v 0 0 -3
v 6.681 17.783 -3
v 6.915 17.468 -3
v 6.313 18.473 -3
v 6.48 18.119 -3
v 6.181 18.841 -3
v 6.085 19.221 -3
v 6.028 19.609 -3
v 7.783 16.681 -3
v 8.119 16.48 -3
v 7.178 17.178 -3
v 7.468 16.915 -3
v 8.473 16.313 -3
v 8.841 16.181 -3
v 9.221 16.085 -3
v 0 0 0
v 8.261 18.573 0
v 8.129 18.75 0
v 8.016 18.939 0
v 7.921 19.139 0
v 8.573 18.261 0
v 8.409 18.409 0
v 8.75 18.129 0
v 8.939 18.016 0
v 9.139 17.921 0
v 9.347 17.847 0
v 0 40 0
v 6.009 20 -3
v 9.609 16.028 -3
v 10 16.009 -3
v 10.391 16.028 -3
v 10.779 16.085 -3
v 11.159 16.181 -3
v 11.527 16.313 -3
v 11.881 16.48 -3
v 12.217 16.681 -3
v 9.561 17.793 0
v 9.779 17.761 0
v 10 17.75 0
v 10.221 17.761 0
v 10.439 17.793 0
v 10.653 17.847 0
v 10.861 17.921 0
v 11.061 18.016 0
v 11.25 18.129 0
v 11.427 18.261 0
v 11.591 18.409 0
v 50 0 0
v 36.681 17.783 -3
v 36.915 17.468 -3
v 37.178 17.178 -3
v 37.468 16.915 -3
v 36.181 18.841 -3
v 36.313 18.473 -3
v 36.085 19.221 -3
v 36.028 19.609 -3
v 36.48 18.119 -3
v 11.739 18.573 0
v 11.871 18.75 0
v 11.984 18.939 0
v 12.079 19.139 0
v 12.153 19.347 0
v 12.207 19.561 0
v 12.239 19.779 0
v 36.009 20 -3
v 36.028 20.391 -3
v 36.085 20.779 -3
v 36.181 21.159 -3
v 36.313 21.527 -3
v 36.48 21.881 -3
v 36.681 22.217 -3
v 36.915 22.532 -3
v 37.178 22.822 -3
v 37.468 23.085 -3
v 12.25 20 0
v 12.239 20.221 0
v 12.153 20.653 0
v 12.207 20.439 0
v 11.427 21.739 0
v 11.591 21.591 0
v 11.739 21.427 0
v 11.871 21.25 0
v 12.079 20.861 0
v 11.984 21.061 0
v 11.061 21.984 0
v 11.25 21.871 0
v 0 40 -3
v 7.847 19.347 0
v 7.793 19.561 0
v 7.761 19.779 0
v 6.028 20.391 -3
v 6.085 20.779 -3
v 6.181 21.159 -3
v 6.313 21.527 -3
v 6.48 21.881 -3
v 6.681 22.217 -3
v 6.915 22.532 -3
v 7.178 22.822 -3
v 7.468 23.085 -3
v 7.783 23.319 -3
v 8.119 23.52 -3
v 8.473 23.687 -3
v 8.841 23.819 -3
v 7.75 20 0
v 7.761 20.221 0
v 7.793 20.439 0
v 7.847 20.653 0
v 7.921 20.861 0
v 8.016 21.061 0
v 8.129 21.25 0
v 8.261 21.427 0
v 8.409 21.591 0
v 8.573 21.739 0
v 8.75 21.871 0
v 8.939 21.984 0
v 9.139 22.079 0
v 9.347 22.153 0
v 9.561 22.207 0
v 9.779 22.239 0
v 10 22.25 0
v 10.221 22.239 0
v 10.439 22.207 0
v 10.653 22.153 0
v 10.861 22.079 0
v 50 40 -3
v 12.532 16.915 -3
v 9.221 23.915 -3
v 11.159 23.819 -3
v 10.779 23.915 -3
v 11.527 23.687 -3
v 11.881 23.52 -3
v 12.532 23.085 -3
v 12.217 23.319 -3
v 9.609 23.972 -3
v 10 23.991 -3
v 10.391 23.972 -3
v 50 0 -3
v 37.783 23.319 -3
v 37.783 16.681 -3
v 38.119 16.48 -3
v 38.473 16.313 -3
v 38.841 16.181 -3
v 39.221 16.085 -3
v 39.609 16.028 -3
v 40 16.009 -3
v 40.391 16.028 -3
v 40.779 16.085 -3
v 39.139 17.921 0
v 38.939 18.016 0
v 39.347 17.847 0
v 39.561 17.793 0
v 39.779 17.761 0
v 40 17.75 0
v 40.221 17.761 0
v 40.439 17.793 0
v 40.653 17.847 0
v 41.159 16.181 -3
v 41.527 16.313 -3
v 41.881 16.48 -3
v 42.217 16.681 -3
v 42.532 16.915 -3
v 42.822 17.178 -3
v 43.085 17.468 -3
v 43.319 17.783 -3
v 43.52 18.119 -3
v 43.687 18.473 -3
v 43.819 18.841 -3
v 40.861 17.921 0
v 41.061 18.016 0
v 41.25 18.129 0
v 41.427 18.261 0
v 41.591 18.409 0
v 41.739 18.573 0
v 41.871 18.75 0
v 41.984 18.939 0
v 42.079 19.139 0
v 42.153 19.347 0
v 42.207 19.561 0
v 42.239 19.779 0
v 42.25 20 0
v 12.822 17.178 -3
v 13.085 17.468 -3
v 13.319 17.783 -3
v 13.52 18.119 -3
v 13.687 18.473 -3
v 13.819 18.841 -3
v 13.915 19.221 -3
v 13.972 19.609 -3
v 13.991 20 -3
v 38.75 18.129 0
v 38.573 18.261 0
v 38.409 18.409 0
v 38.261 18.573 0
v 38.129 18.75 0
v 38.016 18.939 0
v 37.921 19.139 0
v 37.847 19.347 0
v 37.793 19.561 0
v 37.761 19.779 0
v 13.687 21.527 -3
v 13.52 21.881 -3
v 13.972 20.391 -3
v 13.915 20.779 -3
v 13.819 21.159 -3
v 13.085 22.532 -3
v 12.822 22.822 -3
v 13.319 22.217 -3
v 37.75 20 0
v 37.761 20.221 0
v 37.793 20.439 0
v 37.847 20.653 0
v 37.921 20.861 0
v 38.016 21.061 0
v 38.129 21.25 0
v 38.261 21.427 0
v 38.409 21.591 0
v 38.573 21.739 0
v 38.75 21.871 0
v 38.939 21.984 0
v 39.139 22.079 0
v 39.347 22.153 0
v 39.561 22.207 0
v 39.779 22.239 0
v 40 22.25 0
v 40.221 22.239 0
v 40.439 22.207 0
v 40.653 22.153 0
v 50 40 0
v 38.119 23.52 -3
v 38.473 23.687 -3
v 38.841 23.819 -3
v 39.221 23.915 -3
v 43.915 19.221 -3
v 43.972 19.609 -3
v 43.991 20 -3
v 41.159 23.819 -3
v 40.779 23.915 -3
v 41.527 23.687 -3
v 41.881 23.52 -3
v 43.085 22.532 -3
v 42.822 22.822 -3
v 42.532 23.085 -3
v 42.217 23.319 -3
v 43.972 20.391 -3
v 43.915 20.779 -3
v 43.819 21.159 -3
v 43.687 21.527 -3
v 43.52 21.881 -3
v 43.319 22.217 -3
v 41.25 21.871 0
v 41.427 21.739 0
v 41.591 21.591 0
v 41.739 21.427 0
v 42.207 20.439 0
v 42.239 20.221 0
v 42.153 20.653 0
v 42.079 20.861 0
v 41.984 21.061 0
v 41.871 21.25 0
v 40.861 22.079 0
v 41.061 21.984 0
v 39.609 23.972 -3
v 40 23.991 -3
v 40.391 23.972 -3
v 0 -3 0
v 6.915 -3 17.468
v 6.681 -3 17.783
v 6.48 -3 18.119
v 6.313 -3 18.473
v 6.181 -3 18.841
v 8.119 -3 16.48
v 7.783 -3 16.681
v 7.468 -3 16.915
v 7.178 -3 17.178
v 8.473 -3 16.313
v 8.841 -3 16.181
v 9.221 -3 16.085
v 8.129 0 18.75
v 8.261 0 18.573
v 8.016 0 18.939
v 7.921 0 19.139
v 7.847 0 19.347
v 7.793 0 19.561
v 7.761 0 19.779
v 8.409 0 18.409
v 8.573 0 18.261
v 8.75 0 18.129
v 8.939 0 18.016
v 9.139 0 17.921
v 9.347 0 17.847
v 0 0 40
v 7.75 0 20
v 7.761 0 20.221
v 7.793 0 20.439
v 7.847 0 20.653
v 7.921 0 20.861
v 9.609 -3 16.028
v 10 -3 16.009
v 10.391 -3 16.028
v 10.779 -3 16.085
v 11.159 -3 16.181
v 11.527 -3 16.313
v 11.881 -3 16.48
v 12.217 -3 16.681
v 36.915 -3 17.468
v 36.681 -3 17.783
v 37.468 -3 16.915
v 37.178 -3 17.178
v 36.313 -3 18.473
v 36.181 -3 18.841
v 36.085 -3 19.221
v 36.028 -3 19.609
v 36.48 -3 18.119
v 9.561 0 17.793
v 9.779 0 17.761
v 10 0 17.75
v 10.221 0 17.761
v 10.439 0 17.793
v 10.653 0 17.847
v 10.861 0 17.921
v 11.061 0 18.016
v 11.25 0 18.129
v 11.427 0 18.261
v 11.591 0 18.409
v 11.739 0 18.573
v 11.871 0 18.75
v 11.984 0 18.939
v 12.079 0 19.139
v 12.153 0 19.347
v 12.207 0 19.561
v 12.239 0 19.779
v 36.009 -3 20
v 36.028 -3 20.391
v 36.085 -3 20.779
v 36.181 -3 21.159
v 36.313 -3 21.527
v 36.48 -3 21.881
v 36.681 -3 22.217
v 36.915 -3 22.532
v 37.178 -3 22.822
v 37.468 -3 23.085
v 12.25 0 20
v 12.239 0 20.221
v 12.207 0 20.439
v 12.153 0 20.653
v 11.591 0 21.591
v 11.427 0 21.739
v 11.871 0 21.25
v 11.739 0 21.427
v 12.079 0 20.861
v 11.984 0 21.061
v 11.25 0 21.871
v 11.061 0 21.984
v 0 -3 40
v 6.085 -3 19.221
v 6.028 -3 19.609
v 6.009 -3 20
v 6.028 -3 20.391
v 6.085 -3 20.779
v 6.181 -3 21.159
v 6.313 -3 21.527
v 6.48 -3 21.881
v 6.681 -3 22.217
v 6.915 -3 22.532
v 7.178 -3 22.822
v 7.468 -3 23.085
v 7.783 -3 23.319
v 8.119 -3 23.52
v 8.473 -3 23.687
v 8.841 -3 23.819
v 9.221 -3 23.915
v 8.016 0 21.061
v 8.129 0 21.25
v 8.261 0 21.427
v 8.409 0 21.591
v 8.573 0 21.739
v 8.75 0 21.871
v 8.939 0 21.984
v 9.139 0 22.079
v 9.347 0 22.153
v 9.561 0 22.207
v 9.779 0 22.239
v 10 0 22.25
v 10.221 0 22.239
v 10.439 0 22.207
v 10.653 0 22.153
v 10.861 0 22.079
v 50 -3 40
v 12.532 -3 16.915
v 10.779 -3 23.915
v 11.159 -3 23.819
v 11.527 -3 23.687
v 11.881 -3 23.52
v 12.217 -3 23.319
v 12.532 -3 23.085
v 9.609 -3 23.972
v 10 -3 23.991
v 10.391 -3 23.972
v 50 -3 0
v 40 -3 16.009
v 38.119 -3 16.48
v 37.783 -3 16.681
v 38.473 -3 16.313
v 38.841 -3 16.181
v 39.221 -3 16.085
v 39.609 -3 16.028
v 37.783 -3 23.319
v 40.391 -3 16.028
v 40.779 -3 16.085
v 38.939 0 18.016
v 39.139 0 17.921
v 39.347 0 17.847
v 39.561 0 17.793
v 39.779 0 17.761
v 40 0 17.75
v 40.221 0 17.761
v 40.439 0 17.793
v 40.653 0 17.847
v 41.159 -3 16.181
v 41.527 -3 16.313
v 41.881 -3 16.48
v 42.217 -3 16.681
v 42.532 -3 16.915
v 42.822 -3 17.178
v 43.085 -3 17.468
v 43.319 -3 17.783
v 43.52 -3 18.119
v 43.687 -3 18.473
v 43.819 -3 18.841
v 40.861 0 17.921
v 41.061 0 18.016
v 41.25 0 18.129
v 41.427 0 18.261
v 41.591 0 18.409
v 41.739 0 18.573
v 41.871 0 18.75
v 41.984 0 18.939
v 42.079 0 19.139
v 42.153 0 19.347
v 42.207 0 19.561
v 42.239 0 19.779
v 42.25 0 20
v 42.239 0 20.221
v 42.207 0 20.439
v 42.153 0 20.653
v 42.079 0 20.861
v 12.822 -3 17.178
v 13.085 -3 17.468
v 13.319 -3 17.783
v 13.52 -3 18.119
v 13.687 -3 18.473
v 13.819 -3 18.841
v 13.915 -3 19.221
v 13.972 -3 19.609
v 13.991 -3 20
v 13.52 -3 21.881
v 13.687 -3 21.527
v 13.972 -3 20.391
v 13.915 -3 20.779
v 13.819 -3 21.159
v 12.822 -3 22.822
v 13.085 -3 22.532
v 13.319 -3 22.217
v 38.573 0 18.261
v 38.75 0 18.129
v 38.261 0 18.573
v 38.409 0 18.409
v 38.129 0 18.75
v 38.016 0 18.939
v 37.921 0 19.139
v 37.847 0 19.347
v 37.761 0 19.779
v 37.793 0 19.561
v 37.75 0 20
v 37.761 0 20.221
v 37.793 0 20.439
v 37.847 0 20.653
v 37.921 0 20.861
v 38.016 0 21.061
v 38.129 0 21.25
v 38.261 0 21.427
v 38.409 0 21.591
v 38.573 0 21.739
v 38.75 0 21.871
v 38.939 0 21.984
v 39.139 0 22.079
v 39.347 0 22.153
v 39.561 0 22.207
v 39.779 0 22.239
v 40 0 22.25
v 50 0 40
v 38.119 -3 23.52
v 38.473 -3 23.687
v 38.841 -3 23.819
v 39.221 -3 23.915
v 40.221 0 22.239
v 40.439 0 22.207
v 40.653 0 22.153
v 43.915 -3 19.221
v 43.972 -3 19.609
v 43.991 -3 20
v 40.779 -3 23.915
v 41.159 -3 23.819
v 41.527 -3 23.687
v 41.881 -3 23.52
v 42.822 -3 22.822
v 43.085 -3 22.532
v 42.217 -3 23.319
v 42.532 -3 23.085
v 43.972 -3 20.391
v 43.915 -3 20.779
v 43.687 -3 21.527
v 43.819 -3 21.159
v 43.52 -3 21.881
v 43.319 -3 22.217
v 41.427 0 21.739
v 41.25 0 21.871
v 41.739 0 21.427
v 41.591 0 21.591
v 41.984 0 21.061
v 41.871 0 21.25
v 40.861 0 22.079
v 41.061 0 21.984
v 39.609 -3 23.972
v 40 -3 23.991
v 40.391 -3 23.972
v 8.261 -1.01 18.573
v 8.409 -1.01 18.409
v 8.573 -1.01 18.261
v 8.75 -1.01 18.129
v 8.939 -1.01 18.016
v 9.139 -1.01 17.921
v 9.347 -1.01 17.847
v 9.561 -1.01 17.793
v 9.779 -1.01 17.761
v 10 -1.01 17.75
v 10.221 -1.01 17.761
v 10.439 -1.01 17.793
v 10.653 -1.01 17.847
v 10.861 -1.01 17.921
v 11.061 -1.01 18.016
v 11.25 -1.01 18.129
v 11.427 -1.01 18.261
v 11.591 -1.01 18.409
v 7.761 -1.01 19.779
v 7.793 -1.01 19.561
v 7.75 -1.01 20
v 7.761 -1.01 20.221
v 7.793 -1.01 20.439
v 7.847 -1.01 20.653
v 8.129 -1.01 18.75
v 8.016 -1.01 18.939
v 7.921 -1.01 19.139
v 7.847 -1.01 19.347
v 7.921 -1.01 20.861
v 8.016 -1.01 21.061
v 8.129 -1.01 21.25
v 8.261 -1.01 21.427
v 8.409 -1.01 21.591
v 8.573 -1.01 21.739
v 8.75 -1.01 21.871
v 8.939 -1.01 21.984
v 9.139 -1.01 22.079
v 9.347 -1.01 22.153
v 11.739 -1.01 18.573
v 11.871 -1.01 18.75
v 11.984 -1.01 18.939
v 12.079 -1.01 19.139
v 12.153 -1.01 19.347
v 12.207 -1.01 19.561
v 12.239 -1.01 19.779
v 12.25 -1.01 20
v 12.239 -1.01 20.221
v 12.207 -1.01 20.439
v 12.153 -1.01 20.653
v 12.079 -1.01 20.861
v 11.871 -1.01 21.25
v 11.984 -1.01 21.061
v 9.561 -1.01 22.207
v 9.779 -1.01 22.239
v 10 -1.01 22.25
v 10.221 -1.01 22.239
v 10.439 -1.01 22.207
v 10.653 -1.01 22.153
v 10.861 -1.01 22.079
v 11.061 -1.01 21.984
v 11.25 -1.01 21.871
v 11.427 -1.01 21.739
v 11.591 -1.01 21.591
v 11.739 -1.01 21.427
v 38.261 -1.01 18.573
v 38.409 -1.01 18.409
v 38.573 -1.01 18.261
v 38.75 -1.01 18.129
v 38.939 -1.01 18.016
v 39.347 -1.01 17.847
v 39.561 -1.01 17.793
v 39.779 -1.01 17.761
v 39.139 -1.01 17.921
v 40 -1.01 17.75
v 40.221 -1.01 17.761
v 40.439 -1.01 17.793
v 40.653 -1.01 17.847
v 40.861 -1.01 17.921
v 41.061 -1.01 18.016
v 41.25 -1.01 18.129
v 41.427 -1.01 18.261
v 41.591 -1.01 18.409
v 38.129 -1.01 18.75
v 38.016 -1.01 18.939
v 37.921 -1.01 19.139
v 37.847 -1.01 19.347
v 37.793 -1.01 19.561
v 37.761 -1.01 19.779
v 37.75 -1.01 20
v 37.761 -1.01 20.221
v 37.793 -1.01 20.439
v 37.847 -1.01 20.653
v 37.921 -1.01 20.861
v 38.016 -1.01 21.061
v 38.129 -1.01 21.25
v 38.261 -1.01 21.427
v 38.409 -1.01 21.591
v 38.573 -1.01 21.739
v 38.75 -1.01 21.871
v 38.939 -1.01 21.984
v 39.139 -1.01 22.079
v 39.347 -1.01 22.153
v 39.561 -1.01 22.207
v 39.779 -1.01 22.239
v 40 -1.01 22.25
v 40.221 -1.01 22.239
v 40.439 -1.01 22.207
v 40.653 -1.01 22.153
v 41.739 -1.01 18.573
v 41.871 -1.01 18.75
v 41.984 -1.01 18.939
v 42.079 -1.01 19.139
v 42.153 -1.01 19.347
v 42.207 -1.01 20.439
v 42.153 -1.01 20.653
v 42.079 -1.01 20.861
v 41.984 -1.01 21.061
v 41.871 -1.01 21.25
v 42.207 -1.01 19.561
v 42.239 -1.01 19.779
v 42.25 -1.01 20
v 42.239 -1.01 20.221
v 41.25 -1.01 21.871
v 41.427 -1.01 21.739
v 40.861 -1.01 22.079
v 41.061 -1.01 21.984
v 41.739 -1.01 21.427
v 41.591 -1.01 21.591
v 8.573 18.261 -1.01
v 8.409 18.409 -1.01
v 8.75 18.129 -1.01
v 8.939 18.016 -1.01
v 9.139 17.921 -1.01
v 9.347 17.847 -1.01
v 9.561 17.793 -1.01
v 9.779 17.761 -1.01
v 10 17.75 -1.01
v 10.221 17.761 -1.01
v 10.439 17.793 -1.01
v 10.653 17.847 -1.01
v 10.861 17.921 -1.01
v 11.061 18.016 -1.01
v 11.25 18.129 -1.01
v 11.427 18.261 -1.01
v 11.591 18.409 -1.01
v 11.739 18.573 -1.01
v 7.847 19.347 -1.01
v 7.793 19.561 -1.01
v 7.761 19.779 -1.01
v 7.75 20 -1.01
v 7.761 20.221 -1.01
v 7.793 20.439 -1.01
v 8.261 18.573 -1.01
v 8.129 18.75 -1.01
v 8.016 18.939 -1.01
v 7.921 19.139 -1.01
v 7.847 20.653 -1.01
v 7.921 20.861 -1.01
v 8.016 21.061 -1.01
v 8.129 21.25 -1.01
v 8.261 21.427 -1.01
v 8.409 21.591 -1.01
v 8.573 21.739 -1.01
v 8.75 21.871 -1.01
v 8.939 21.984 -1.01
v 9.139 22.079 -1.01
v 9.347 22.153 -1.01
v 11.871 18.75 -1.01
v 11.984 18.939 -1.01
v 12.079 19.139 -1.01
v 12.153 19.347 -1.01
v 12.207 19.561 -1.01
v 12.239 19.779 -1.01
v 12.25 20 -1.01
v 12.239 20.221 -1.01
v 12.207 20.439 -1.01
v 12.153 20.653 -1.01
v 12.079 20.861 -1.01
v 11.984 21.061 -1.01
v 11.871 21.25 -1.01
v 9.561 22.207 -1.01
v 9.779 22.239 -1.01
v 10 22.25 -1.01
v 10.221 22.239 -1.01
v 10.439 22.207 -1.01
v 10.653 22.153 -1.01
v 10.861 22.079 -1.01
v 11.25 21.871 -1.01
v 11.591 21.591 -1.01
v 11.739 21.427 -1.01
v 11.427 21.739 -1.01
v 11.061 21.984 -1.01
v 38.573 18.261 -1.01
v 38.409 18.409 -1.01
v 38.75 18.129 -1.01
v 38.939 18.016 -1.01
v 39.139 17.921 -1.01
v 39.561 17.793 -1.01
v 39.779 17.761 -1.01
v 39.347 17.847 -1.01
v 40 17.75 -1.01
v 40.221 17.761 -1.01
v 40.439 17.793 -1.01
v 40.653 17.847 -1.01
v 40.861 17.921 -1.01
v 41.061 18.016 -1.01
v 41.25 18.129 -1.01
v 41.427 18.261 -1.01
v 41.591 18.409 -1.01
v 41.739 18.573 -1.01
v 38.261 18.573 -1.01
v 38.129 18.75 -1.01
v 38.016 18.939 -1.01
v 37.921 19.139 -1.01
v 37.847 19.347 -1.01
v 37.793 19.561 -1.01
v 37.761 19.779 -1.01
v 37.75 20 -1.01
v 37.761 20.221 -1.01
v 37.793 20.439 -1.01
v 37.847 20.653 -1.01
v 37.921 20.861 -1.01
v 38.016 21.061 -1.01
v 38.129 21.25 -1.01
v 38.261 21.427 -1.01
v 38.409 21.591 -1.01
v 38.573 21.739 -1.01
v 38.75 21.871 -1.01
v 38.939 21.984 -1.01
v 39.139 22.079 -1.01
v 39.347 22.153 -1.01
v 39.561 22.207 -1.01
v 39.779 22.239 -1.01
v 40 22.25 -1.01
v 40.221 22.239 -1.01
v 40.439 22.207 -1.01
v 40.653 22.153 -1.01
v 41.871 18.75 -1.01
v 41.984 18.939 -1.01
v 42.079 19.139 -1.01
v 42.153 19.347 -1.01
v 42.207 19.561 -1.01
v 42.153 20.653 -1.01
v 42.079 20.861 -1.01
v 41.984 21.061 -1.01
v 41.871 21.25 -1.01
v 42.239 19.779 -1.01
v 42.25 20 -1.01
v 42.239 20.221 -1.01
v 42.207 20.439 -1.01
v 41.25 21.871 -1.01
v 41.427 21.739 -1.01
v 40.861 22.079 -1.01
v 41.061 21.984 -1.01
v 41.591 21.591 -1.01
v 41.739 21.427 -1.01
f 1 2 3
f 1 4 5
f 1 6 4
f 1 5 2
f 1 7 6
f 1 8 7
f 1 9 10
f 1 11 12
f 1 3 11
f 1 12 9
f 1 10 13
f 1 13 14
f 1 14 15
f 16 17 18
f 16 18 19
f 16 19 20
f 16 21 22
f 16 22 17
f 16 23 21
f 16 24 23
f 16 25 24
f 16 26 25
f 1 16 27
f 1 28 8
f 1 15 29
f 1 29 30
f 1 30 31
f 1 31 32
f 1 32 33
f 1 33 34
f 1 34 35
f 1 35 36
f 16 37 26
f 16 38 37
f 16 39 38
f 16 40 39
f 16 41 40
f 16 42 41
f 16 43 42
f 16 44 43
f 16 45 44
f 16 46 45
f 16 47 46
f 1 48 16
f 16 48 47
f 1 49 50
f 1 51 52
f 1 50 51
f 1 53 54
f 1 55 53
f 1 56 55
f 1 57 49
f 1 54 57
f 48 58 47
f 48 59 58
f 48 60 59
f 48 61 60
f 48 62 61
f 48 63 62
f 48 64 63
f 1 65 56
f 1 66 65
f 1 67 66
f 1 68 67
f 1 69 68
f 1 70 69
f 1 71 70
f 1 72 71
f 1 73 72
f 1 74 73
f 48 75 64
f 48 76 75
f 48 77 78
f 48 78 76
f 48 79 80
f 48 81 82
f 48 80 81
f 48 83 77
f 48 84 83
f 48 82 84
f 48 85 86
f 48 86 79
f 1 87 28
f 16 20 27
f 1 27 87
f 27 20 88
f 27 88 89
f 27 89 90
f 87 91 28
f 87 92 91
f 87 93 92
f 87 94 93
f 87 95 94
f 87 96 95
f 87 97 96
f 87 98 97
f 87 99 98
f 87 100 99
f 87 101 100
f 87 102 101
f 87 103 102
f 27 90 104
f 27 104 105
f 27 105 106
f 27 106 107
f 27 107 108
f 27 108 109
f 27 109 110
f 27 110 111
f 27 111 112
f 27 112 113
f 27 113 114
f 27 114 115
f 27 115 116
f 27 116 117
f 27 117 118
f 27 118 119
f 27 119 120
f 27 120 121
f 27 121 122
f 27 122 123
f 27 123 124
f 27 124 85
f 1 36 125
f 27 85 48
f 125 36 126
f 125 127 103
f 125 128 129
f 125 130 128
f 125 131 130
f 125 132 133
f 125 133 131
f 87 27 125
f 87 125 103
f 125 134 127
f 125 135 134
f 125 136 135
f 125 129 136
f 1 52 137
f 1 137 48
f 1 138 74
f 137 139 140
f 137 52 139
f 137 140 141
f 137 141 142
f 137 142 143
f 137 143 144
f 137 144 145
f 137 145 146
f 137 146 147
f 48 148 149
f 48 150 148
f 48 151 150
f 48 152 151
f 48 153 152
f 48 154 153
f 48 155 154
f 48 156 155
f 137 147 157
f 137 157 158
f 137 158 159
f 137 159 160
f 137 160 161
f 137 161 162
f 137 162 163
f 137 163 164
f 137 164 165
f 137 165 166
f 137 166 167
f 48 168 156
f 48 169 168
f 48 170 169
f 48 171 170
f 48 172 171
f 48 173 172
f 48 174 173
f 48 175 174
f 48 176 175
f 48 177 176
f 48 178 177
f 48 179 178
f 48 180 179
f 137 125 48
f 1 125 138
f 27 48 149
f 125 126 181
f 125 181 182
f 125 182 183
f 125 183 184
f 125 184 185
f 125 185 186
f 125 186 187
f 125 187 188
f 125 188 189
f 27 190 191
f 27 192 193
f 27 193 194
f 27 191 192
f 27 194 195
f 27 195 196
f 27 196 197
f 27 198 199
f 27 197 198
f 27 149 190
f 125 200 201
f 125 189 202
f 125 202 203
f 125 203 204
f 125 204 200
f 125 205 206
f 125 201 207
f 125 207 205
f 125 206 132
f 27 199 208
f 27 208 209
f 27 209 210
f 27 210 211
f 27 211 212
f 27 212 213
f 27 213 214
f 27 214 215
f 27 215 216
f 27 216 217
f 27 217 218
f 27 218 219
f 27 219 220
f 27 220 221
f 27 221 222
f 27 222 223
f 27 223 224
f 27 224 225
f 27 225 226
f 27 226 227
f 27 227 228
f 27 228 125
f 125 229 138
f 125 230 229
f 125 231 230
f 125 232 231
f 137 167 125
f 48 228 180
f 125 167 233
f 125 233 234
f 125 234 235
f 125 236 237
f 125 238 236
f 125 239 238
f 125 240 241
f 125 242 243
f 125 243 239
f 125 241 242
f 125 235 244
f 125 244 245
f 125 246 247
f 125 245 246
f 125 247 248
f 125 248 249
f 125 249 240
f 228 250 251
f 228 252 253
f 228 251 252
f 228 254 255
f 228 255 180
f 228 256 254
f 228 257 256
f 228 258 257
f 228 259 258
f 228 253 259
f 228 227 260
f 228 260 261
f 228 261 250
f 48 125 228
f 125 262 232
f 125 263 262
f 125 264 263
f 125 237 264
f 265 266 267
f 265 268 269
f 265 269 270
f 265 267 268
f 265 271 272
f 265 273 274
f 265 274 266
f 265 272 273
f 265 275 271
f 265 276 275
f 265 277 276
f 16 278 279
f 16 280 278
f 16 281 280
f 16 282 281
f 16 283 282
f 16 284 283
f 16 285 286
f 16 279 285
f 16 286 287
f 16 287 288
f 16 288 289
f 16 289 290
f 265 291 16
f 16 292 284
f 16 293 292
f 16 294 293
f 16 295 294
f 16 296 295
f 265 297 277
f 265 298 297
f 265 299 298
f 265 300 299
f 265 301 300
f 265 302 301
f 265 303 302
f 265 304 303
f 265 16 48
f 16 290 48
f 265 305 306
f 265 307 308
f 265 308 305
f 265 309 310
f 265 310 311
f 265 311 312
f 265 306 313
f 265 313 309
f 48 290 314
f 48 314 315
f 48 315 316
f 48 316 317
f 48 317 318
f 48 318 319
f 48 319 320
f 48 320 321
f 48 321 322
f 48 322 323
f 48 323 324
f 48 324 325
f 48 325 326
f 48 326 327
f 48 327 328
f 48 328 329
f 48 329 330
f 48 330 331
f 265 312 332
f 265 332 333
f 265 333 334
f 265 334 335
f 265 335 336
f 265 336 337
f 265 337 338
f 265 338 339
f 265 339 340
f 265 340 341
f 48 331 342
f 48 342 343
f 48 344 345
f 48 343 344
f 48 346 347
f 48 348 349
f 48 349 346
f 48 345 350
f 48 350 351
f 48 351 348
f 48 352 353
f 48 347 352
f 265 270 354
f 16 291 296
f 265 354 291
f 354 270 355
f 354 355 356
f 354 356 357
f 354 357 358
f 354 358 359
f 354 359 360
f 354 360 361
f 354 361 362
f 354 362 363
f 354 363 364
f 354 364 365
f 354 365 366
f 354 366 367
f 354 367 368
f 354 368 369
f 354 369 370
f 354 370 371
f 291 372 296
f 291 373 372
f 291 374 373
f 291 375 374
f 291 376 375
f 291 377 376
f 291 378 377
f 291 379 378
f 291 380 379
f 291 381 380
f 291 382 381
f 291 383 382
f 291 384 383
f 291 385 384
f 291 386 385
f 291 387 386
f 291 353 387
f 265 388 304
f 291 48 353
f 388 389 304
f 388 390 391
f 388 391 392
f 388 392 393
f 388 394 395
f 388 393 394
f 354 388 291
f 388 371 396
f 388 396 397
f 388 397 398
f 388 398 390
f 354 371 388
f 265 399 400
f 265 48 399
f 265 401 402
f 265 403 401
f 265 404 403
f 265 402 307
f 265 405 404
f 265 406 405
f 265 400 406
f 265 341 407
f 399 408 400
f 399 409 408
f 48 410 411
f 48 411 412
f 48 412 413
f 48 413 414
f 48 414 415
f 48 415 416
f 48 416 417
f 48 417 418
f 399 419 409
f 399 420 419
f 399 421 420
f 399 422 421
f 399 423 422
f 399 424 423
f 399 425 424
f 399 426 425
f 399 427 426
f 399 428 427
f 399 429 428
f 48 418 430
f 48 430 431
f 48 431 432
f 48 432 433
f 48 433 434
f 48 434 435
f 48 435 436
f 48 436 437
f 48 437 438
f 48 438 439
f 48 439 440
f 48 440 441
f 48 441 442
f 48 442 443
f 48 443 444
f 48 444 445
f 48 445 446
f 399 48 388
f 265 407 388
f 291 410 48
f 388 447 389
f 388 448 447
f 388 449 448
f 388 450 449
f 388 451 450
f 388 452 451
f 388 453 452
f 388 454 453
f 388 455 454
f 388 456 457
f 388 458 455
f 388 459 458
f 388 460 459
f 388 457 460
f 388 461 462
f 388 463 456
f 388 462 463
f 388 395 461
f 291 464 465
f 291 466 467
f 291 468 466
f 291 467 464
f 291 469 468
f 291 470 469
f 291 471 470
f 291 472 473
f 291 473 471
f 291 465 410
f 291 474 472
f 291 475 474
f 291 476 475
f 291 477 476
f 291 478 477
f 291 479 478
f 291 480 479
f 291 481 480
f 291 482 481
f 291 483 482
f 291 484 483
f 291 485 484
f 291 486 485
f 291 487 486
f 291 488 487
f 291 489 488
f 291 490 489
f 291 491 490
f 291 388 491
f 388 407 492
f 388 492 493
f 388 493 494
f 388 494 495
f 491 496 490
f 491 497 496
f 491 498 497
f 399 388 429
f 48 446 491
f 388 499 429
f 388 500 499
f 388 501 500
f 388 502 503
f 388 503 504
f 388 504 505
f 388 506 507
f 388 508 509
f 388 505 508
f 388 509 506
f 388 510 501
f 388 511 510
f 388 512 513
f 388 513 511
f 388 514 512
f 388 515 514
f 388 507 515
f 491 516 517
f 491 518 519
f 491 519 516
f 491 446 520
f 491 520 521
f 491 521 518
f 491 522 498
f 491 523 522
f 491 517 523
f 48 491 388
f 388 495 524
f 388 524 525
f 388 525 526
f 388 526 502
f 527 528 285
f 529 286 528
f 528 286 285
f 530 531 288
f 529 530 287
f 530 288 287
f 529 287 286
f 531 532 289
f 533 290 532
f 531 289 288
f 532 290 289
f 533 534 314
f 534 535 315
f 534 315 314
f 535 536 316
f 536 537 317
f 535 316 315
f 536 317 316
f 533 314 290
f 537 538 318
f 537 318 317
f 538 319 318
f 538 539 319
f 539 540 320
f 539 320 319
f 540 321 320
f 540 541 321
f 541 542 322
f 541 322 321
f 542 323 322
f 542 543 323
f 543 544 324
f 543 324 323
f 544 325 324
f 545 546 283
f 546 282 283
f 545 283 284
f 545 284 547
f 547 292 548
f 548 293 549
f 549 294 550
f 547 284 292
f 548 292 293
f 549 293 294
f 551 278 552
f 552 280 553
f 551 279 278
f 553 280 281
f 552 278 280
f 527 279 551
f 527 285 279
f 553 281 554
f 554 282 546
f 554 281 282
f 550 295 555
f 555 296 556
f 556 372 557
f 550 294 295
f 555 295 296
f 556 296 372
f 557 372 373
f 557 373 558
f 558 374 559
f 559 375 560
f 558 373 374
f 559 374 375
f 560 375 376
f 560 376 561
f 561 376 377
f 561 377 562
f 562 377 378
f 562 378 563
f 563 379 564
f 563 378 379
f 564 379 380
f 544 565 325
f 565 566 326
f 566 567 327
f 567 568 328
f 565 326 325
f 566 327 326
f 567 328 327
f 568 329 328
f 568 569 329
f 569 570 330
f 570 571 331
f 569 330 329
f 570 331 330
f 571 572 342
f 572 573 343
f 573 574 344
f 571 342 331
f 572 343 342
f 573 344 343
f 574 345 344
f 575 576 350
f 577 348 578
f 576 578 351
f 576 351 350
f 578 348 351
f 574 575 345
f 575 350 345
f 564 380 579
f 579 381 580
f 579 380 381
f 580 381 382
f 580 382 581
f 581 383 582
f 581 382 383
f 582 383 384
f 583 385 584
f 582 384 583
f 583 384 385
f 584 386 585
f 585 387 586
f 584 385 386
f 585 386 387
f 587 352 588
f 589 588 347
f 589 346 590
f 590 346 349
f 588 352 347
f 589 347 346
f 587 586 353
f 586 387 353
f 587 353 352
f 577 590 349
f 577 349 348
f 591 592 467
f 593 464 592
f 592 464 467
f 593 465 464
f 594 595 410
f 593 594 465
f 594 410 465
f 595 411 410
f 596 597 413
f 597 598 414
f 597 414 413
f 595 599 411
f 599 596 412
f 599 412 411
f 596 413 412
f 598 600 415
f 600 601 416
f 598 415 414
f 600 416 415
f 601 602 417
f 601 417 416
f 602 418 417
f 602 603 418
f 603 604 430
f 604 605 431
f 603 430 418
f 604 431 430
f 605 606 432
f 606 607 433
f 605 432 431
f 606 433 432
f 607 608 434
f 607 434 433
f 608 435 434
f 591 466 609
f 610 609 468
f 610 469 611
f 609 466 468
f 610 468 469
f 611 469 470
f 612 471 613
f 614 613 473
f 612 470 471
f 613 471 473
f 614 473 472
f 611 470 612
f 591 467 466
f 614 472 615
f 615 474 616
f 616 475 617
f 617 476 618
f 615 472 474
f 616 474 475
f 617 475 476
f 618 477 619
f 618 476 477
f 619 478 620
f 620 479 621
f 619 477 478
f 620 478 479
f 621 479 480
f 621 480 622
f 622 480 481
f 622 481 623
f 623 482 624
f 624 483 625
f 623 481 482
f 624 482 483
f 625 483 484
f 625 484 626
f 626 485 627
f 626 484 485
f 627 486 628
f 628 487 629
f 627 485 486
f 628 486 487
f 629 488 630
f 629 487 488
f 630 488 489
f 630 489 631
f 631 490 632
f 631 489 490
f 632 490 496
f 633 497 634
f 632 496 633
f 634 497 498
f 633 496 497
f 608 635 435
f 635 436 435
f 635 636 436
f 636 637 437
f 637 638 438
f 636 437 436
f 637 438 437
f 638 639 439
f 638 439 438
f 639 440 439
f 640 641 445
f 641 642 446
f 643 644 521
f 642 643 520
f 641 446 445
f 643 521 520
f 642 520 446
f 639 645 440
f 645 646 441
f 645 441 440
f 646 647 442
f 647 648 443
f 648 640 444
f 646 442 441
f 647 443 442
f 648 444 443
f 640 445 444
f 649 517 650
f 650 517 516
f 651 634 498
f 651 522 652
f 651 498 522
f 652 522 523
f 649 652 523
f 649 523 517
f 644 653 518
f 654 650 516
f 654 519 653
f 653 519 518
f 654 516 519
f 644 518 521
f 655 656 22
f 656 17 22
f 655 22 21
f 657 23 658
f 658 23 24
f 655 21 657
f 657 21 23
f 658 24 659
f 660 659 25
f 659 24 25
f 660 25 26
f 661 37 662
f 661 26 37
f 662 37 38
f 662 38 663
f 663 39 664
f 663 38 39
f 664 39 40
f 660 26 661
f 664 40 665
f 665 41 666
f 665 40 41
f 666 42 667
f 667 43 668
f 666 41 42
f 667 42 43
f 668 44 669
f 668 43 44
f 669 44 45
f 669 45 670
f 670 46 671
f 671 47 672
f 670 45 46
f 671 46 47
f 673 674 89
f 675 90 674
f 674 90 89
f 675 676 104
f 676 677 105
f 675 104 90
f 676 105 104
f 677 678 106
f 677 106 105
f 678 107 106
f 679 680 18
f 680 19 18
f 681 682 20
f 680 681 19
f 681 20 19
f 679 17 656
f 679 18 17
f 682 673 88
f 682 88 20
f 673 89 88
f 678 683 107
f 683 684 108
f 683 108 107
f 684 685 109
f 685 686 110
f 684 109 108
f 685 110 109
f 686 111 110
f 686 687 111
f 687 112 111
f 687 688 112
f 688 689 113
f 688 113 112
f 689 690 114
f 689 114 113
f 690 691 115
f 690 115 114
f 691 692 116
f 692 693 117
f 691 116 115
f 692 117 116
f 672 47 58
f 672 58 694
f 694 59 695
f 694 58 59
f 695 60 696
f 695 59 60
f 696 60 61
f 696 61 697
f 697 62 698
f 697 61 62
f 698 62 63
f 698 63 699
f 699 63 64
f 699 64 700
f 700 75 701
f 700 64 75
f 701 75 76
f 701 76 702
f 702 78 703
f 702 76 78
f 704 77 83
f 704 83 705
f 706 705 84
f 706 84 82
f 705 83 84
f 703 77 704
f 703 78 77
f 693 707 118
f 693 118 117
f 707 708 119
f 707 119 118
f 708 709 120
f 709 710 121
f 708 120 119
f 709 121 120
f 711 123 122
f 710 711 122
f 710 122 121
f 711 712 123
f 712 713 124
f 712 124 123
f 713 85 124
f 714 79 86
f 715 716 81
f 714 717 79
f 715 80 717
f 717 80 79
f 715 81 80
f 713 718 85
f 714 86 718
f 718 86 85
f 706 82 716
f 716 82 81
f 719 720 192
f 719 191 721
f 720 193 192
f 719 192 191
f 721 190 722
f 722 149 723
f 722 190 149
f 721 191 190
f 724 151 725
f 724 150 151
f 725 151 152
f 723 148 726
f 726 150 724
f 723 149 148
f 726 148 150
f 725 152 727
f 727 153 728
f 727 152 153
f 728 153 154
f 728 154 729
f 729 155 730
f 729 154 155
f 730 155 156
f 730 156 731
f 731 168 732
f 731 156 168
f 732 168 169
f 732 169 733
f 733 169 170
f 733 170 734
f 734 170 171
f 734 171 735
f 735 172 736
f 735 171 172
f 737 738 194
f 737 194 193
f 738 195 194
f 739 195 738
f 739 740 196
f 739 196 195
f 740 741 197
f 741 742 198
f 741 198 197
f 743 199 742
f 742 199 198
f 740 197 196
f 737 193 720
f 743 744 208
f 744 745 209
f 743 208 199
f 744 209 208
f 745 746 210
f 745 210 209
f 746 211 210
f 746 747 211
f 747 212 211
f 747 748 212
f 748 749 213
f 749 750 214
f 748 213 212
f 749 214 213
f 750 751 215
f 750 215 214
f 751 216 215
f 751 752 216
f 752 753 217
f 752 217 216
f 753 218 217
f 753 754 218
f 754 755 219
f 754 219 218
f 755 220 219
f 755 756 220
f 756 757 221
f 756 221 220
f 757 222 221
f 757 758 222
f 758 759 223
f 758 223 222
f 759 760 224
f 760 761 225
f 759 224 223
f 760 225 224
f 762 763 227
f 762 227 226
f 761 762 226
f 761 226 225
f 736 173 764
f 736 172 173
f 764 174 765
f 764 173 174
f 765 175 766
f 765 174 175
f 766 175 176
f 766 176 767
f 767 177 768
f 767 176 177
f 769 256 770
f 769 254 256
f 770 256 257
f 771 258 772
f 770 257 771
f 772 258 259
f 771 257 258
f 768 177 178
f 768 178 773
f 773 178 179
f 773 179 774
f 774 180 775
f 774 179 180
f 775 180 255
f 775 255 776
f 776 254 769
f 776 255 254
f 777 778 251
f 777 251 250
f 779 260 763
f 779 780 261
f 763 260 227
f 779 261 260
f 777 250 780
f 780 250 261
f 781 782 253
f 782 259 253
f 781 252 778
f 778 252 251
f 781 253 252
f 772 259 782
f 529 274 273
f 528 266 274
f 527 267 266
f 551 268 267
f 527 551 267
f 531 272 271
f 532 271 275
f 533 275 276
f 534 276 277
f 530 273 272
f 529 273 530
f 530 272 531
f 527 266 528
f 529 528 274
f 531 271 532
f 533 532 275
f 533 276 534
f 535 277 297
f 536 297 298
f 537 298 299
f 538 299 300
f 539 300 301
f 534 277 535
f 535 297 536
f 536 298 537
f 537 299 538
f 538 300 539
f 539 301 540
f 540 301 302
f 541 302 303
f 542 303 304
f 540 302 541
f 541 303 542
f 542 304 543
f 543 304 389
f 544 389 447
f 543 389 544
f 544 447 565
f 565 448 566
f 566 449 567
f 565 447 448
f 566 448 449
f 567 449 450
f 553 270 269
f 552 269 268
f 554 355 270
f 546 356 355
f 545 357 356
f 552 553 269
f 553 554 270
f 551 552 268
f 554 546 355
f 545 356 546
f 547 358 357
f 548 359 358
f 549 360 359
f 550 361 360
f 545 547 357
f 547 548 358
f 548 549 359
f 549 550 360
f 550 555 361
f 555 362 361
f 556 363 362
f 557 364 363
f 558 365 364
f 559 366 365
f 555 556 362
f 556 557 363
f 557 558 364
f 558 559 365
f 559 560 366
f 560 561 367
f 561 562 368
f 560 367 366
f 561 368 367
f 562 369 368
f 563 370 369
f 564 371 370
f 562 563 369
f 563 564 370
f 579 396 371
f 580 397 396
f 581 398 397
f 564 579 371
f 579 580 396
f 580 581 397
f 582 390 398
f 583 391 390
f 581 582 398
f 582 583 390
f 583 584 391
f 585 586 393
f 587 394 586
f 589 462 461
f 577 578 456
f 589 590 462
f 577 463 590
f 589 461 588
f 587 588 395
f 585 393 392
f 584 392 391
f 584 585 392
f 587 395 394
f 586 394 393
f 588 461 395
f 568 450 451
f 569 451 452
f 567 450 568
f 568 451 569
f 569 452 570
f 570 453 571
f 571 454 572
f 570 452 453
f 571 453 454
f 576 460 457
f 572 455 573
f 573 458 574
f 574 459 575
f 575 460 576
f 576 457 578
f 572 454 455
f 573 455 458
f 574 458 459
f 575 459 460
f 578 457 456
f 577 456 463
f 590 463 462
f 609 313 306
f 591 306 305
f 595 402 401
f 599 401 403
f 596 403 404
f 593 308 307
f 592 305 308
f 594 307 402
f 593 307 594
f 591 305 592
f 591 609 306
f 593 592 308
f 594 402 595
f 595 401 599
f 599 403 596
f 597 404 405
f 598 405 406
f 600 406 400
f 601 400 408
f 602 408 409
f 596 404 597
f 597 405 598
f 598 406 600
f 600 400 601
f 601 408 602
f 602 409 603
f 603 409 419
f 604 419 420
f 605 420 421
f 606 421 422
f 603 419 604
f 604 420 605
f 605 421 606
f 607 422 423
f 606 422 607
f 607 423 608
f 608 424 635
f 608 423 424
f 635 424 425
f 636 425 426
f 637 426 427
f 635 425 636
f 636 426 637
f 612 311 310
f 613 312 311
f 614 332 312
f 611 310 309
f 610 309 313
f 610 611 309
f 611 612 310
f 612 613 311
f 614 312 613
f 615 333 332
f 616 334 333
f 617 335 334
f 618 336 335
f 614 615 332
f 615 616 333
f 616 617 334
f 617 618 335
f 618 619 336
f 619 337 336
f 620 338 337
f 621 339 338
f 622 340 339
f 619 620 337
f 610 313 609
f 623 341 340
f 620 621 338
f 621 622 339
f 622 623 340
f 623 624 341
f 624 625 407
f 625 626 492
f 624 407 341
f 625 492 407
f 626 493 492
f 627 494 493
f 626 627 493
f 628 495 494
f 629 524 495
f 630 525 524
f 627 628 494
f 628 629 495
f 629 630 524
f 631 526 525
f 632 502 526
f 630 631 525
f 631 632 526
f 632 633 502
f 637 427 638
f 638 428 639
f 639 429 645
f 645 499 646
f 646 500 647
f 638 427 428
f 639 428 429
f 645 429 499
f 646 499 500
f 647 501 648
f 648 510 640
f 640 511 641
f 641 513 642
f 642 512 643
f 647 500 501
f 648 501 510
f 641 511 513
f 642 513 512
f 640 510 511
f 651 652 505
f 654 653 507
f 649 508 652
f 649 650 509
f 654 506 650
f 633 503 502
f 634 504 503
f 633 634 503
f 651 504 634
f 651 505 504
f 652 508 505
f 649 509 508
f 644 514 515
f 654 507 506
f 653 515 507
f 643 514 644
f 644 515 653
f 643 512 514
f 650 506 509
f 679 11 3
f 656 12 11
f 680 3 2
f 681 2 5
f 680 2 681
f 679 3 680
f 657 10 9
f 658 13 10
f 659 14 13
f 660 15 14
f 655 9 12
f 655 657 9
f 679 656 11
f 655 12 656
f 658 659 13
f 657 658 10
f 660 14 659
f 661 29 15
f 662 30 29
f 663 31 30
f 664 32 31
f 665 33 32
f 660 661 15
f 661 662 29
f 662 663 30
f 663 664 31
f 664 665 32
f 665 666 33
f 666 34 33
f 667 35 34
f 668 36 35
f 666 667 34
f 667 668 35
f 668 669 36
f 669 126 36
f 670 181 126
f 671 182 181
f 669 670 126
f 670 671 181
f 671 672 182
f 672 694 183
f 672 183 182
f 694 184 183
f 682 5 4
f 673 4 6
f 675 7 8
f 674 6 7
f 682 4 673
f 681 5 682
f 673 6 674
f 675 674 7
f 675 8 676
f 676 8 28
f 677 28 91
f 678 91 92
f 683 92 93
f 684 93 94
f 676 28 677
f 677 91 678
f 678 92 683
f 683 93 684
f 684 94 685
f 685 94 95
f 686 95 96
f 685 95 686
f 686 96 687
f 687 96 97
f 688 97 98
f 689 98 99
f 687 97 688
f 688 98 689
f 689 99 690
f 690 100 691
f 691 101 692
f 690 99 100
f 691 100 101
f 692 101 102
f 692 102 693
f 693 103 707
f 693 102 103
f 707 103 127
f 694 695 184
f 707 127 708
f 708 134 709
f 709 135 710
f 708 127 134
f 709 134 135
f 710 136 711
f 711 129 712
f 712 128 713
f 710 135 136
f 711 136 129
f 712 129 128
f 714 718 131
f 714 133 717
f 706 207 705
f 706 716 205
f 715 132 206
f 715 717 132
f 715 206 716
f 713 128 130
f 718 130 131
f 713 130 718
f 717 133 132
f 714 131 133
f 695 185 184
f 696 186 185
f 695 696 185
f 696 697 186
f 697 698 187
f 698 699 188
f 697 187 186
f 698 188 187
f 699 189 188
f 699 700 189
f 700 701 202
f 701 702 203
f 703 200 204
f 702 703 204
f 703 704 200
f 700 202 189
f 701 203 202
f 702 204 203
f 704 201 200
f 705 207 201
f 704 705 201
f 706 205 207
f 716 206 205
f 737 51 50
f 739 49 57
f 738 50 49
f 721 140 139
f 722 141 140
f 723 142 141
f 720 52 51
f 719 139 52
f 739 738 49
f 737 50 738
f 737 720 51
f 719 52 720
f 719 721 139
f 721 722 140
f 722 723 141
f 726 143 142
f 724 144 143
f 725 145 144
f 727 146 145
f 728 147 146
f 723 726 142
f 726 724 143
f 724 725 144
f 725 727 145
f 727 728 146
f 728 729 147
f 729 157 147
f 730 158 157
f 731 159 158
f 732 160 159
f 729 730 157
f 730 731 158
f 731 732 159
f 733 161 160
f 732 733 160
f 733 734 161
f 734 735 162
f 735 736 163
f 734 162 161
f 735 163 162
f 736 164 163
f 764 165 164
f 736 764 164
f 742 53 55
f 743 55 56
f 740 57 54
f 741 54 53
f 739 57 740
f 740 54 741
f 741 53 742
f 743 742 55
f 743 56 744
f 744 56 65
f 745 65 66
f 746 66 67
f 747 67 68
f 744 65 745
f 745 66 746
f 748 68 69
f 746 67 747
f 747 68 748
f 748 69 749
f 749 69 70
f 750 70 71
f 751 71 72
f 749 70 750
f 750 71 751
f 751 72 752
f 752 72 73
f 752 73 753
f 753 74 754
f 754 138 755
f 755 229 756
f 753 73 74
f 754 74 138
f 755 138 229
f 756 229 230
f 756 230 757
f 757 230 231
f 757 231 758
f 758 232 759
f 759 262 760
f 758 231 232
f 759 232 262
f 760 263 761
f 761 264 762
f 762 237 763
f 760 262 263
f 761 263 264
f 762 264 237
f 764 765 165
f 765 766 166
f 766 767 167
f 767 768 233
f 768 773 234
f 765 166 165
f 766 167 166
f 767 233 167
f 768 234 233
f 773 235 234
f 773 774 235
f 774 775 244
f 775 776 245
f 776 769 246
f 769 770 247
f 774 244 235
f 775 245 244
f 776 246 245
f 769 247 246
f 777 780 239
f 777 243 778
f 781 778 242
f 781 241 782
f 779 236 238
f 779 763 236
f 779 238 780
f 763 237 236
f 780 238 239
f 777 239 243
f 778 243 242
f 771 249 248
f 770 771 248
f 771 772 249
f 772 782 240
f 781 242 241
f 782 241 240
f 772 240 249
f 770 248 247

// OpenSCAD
$fn = 64;

// 基本寸法
width = 50;     // 幅 (X方向)
depth = 40;     // 奥行き (Y方向)
height = 40;    // 高さ (Z方向)
thickness = 3;  // 板厚

// 皿穴の寸法 (M4ねじ用)
hole_d = 4.5;   // 貫通穴径
sink_d = 8.0;   // 皿座面最大径
sink_h = 2.0;   // 皿座面深さ

// 配置設定
edge_offset = 10; // 左右の縁からの距離

// 皿穴モジュール (ローカル原点表面から内部に向かって穴を開ける)
module countersunk_hole() {
    // 貫通穴 (中心をずらして確実に貫通させる)
    translate([0, 0, -thickness])
        cylinder(d = hole_d, h = thickness * 3);
    
    // 皿座面 (テーパー部分)
    // 外側から内側へ向かって細くなる円錐
    translate([0, 0, -0.01]) // 表面のチラつき防止
        cylinder(d1 = sink_d, d2 = hole_d, h = sink_h);
}

difference() {
    // L字金具の本体
    union() {
        // 水平面: 内側コーナーが原点、+Y方向に伸びる
        // 板厚分は下に下げる (表面が Z=0)
        translate([0, 0, -thickness])
            cube([width, depth, thickness]);
        
        // 垂直面: 内側コーナーが原点、+Z方向に伸びる
        // 板厚分は奥に下げる (表面が Y=0)
        translate([0, -thickness, 0])
            cube([width, thickness, height]);
    }

    // 水平面の皿穴 (2個)
    // 面の中心線は Y = depth / 2
    for (x = [edge_offset, width - edge_offset]) {
        translate([x, depth / 2, -thickness]) {
            // 0度回転で、Z-3(外側)からZ-1(内側)へ向けて穴が開く
            countersunk_hole();
        }
    }

    // 垂直面の皿穴 (2個)
    // 面の中心線は Z = height / 2
    for (x = [edge_offset, width - edge_offset]) {
        translate([x, -thickness, height / 2]) {
            // X軸周りに-90度回転させ、Y-3(外側)からY-1(内側)へ向けて穴を開ける
            rotate([-90, 0, 0])
                countersunk_hole();
        }
    }
}
